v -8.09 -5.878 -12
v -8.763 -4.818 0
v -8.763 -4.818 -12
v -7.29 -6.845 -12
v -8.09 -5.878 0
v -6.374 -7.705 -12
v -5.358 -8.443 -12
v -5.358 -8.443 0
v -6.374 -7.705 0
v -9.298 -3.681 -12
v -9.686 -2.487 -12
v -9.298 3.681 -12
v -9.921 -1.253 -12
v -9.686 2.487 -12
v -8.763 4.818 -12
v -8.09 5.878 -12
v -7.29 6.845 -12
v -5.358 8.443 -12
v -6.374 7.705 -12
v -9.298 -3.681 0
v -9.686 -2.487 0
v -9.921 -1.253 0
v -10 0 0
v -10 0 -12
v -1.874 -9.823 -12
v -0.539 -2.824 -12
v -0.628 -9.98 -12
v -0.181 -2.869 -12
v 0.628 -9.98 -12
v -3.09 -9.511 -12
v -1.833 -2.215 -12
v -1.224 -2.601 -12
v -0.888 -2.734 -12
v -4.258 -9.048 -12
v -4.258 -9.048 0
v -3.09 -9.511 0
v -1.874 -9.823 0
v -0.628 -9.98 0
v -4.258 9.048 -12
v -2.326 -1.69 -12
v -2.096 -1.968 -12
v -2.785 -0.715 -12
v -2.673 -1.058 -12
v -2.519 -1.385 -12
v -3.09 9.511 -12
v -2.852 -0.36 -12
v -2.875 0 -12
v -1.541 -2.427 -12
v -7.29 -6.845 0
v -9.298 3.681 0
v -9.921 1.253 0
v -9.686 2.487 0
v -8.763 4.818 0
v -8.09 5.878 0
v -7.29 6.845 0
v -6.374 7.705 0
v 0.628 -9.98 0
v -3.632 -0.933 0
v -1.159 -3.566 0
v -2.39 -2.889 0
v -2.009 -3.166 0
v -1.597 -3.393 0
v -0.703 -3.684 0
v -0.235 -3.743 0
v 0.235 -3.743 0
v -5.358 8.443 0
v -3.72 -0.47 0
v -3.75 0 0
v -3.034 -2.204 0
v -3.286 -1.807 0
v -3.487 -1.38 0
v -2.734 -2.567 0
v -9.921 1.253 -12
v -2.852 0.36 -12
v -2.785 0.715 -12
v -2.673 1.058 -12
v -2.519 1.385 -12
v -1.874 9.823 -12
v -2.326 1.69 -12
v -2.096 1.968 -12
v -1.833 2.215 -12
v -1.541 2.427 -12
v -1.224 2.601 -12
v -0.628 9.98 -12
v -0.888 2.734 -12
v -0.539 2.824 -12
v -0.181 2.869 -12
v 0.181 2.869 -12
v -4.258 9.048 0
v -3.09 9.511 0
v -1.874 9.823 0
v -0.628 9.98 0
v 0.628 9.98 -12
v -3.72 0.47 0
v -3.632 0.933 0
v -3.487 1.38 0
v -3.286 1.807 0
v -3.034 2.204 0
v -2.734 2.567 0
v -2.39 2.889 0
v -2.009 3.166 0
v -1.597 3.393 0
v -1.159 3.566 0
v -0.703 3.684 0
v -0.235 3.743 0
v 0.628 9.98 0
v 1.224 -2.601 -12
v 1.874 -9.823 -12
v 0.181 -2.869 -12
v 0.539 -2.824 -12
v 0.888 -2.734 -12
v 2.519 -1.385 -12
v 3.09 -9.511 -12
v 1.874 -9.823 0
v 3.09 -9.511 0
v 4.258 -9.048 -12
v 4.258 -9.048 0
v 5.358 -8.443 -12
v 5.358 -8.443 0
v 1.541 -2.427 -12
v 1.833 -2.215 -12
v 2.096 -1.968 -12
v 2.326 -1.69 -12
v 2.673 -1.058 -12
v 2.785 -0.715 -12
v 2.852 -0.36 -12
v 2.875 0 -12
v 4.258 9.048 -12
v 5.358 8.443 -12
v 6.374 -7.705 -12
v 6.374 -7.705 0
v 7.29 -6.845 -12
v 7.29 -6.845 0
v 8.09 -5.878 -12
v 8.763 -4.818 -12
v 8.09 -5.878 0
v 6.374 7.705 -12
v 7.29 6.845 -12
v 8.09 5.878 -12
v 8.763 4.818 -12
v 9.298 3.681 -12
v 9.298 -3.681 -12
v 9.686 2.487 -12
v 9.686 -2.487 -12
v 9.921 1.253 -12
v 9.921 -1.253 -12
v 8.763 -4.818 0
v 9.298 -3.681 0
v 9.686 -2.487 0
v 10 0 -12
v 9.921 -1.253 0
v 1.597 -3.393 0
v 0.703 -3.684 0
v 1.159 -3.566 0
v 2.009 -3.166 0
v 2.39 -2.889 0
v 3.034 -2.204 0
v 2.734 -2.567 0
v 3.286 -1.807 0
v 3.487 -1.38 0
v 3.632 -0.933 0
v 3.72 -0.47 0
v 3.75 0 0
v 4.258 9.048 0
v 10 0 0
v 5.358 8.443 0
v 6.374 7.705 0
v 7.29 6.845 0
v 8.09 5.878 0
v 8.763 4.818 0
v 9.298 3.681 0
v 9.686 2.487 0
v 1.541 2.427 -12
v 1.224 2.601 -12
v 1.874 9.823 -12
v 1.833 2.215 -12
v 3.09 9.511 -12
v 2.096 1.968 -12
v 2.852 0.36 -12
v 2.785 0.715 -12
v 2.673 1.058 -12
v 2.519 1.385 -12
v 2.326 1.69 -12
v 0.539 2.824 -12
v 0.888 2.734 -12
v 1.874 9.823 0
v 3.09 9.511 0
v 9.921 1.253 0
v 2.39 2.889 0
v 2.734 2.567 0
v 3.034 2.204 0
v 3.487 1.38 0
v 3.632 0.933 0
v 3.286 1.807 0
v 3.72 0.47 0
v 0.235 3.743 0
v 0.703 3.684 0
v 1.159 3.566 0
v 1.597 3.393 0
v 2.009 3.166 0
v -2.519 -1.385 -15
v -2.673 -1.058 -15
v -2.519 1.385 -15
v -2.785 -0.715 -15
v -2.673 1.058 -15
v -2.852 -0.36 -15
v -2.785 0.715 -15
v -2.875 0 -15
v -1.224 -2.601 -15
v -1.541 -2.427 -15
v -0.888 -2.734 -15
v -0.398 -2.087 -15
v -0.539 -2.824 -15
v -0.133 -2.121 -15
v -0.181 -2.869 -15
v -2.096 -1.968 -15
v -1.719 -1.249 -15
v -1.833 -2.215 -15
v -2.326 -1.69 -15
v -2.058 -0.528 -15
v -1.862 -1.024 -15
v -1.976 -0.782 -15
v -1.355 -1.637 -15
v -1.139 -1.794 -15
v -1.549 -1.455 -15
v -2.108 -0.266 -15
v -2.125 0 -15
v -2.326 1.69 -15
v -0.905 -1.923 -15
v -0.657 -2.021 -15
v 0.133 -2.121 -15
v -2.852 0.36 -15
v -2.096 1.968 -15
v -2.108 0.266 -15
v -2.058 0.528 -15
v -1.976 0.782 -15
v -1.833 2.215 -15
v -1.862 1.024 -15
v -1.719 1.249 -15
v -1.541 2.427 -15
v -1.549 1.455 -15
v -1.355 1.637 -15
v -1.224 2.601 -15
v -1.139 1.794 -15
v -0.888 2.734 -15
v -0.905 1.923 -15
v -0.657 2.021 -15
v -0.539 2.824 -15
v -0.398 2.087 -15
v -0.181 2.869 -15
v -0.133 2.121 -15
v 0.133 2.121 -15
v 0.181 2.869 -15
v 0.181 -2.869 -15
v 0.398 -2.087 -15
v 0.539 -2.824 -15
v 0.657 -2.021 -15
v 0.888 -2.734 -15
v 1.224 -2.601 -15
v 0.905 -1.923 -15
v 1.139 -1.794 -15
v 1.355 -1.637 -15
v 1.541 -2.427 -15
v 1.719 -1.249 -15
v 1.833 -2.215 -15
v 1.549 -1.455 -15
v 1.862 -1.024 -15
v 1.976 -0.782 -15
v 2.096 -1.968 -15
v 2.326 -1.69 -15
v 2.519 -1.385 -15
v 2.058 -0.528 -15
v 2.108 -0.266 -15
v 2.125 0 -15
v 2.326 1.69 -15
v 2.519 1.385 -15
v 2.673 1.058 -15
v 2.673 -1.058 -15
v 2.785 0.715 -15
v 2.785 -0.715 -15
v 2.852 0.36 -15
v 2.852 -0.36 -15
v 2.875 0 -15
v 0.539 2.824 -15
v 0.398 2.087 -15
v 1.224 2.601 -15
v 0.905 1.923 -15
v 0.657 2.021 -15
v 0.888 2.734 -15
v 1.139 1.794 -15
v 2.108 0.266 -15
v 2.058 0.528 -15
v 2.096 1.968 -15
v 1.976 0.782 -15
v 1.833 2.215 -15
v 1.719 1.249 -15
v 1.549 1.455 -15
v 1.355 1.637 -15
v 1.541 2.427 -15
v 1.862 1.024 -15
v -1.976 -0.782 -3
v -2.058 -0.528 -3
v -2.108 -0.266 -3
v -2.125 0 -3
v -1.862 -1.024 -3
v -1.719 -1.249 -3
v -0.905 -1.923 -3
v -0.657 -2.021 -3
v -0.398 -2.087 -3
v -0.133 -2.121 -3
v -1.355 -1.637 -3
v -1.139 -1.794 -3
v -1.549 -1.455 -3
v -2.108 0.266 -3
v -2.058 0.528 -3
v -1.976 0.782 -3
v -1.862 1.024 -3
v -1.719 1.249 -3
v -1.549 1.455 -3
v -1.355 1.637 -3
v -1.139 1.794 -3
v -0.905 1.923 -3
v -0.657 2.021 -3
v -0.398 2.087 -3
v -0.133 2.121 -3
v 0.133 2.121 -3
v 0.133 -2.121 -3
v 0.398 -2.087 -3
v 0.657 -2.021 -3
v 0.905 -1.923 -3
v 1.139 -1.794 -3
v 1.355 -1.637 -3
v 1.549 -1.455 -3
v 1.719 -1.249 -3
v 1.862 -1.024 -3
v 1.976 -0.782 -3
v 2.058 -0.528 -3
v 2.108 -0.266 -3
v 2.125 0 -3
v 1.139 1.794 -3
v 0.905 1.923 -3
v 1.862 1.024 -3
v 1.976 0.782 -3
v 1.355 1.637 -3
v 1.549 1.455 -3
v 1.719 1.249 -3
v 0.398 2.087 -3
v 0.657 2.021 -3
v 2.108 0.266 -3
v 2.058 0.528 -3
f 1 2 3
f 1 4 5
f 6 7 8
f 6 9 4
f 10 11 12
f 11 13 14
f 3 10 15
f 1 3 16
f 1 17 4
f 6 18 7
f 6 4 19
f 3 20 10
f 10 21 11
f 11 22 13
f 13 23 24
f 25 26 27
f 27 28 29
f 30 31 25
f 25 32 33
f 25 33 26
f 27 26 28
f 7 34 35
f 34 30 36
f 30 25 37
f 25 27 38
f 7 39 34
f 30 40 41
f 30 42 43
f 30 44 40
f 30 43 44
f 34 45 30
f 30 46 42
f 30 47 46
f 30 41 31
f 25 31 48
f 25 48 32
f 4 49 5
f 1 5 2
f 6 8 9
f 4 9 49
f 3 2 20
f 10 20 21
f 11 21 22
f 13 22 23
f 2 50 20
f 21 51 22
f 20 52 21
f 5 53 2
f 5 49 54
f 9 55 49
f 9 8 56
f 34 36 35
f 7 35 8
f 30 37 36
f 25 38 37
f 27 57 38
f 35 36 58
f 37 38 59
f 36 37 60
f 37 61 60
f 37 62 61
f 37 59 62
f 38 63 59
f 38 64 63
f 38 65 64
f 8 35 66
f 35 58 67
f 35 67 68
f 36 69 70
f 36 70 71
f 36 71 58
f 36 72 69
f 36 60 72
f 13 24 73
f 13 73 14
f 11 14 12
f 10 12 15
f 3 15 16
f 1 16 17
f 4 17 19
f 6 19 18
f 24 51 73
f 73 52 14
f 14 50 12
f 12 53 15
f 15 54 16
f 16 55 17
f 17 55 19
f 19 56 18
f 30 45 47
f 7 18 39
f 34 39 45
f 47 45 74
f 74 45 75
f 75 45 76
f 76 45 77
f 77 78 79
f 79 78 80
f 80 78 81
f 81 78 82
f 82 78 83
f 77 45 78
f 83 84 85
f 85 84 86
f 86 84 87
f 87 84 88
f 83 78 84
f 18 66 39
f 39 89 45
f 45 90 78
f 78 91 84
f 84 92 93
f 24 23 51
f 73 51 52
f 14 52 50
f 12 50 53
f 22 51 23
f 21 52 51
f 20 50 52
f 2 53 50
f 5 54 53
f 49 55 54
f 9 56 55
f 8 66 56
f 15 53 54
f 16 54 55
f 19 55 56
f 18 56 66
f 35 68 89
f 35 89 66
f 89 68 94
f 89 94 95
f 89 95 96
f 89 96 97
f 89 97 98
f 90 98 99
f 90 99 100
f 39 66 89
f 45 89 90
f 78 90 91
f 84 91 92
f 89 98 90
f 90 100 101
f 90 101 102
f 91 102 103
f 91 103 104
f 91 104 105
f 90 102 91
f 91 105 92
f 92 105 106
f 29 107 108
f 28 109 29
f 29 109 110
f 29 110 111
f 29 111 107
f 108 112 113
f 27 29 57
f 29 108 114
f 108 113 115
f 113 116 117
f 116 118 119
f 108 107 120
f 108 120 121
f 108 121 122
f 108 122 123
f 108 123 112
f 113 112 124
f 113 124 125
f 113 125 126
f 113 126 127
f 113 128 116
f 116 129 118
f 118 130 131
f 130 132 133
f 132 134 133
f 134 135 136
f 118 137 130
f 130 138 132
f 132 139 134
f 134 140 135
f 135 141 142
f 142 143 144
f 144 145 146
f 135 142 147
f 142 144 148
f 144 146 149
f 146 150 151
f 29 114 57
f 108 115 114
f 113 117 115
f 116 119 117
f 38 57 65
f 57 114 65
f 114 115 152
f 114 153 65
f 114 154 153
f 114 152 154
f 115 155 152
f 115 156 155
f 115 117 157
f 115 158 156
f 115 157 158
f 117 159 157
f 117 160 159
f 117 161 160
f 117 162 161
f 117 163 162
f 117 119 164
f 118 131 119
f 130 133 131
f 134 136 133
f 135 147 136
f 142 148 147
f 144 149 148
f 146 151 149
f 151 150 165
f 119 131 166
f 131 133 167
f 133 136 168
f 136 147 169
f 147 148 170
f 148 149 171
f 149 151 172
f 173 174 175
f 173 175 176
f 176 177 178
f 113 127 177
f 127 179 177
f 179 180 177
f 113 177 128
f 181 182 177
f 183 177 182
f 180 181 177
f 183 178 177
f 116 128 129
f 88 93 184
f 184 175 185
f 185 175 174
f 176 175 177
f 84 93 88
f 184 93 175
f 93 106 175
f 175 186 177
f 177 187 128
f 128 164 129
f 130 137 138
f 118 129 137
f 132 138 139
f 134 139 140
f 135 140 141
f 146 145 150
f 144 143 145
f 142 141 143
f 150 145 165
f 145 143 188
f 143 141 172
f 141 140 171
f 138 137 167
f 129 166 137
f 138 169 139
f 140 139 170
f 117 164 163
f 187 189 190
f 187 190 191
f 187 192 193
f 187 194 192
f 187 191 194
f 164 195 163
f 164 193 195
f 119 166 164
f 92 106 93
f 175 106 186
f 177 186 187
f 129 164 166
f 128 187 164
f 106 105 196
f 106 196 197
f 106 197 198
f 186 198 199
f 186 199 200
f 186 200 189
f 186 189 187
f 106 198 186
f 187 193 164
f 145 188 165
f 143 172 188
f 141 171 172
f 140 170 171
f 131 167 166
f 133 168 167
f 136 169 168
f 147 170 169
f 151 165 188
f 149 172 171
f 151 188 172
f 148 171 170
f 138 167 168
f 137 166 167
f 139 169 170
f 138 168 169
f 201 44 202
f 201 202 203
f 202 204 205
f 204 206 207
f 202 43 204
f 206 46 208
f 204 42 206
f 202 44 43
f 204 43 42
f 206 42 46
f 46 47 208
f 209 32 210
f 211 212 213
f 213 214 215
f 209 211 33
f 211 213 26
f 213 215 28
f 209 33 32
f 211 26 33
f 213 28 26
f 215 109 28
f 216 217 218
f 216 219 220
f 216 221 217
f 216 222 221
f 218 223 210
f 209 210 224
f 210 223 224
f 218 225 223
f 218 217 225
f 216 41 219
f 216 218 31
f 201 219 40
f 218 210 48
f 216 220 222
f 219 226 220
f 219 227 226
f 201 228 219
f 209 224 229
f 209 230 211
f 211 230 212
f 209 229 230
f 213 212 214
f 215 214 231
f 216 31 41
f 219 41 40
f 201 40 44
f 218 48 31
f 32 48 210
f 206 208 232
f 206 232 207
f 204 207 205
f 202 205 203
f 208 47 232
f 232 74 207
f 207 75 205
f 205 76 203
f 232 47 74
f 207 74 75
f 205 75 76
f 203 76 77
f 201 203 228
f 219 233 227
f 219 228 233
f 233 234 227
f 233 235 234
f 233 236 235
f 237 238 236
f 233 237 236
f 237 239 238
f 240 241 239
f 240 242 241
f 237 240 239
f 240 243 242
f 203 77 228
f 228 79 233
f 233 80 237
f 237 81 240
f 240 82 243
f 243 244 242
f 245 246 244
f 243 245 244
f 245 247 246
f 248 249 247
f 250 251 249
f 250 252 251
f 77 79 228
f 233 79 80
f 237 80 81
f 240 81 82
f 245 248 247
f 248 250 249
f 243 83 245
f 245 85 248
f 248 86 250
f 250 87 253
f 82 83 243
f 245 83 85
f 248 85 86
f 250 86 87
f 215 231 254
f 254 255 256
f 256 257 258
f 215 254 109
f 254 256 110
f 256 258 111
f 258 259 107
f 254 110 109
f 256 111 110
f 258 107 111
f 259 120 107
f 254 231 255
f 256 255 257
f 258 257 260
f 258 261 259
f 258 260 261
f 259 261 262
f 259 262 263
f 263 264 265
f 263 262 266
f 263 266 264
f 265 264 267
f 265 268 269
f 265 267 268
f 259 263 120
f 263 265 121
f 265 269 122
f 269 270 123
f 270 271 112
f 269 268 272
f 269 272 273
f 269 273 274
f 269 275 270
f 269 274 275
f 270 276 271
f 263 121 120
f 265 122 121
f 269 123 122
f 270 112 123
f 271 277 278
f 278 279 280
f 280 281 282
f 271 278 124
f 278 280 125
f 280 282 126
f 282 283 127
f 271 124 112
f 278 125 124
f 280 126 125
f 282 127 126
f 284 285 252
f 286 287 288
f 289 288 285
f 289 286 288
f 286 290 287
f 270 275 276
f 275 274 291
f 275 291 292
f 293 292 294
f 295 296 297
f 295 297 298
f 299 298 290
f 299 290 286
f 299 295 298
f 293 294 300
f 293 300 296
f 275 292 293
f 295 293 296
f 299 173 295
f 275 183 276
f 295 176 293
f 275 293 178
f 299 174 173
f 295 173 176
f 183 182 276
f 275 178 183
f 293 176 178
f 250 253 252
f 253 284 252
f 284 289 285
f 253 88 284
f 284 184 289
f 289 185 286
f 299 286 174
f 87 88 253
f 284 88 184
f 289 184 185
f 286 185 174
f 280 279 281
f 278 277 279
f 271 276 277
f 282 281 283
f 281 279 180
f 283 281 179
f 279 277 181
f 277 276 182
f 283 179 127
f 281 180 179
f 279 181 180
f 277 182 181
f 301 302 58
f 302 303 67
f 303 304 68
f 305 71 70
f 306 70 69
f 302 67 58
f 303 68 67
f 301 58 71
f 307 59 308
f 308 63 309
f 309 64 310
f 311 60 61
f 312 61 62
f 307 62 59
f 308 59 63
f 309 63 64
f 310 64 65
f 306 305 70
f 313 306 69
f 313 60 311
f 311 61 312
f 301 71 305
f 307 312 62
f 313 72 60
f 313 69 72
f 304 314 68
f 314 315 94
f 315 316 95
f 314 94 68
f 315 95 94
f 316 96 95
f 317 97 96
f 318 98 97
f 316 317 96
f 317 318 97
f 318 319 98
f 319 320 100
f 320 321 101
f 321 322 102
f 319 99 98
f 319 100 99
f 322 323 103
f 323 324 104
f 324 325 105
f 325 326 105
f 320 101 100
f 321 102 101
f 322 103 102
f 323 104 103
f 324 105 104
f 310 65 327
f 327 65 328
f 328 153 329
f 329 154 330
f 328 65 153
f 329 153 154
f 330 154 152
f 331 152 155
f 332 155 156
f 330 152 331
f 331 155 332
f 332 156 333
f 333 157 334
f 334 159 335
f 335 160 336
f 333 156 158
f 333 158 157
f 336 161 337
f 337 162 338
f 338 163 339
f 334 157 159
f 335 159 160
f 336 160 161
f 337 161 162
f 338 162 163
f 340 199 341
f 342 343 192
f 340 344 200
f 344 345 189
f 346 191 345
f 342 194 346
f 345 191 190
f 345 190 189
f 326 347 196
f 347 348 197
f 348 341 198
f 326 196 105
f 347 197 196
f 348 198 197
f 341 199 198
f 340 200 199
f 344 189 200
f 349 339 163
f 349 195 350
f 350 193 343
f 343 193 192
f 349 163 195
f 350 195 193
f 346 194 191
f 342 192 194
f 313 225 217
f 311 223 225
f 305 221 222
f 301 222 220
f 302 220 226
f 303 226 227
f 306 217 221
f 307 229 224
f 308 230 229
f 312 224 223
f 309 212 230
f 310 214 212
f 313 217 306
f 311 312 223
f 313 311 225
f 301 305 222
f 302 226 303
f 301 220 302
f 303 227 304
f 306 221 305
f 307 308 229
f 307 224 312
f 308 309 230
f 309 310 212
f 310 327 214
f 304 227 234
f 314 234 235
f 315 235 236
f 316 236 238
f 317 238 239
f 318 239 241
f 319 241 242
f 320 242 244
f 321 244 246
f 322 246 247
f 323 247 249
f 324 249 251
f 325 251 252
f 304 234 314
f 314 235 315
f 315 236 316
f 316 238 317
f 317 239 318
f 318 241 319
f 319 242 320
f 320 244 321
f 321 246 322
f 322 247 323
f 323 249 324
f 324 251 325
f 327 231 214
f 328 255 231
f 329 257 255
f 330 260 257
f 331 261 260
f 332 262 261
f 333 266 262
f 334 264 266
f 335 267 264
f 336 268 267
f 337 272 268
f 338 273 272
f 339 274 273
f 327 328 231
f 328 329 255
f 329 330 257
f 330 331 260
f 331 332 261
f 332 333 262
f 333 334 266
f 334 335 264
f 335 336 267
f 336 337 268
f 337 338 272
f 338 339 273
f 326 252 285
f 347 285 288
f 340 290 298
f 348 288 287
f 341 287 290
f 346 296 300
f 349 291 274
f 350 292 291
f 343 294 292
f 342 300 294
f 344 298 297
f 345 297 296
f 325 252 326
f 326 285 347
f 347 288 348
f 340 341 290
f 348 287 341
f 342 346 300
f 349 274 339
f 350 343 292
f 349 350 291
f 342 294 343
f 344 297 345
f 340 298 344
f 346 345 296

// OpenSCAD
$fn = 50;

difference() {
	union() {
		translate(v = [0, 0, -12.0]) {
			cylinder(h = 12, r = 10.0);
		}
		#translate(v = [0, 0, -15.0]) {
			cylinder(h = 15, r = 2.875);
		}
	}
	union() {
		translate(v = [0, 0, 0]) {
			rotate(a = [0, 0, 0]) {
				difference() {
					union() {
						translate(v = [0, 0, -15.0]) {
							cylinder(h = 15, r = 2.0);
						}
						translate(v = [0, 0, -3]) {
							cylinder(h = 3, r1 = 2.125, r2 = 3.75);
						}
						translate(v = [0, 0, -15.0]) {
							cylinder(h = 15, r = 2.125);
						}
						translate(v = [0, 0, -15.0]) {
							cylinder(h = 15, r = 2.0);
						}
					}
					union();
				}
			}
		}
	}
}
